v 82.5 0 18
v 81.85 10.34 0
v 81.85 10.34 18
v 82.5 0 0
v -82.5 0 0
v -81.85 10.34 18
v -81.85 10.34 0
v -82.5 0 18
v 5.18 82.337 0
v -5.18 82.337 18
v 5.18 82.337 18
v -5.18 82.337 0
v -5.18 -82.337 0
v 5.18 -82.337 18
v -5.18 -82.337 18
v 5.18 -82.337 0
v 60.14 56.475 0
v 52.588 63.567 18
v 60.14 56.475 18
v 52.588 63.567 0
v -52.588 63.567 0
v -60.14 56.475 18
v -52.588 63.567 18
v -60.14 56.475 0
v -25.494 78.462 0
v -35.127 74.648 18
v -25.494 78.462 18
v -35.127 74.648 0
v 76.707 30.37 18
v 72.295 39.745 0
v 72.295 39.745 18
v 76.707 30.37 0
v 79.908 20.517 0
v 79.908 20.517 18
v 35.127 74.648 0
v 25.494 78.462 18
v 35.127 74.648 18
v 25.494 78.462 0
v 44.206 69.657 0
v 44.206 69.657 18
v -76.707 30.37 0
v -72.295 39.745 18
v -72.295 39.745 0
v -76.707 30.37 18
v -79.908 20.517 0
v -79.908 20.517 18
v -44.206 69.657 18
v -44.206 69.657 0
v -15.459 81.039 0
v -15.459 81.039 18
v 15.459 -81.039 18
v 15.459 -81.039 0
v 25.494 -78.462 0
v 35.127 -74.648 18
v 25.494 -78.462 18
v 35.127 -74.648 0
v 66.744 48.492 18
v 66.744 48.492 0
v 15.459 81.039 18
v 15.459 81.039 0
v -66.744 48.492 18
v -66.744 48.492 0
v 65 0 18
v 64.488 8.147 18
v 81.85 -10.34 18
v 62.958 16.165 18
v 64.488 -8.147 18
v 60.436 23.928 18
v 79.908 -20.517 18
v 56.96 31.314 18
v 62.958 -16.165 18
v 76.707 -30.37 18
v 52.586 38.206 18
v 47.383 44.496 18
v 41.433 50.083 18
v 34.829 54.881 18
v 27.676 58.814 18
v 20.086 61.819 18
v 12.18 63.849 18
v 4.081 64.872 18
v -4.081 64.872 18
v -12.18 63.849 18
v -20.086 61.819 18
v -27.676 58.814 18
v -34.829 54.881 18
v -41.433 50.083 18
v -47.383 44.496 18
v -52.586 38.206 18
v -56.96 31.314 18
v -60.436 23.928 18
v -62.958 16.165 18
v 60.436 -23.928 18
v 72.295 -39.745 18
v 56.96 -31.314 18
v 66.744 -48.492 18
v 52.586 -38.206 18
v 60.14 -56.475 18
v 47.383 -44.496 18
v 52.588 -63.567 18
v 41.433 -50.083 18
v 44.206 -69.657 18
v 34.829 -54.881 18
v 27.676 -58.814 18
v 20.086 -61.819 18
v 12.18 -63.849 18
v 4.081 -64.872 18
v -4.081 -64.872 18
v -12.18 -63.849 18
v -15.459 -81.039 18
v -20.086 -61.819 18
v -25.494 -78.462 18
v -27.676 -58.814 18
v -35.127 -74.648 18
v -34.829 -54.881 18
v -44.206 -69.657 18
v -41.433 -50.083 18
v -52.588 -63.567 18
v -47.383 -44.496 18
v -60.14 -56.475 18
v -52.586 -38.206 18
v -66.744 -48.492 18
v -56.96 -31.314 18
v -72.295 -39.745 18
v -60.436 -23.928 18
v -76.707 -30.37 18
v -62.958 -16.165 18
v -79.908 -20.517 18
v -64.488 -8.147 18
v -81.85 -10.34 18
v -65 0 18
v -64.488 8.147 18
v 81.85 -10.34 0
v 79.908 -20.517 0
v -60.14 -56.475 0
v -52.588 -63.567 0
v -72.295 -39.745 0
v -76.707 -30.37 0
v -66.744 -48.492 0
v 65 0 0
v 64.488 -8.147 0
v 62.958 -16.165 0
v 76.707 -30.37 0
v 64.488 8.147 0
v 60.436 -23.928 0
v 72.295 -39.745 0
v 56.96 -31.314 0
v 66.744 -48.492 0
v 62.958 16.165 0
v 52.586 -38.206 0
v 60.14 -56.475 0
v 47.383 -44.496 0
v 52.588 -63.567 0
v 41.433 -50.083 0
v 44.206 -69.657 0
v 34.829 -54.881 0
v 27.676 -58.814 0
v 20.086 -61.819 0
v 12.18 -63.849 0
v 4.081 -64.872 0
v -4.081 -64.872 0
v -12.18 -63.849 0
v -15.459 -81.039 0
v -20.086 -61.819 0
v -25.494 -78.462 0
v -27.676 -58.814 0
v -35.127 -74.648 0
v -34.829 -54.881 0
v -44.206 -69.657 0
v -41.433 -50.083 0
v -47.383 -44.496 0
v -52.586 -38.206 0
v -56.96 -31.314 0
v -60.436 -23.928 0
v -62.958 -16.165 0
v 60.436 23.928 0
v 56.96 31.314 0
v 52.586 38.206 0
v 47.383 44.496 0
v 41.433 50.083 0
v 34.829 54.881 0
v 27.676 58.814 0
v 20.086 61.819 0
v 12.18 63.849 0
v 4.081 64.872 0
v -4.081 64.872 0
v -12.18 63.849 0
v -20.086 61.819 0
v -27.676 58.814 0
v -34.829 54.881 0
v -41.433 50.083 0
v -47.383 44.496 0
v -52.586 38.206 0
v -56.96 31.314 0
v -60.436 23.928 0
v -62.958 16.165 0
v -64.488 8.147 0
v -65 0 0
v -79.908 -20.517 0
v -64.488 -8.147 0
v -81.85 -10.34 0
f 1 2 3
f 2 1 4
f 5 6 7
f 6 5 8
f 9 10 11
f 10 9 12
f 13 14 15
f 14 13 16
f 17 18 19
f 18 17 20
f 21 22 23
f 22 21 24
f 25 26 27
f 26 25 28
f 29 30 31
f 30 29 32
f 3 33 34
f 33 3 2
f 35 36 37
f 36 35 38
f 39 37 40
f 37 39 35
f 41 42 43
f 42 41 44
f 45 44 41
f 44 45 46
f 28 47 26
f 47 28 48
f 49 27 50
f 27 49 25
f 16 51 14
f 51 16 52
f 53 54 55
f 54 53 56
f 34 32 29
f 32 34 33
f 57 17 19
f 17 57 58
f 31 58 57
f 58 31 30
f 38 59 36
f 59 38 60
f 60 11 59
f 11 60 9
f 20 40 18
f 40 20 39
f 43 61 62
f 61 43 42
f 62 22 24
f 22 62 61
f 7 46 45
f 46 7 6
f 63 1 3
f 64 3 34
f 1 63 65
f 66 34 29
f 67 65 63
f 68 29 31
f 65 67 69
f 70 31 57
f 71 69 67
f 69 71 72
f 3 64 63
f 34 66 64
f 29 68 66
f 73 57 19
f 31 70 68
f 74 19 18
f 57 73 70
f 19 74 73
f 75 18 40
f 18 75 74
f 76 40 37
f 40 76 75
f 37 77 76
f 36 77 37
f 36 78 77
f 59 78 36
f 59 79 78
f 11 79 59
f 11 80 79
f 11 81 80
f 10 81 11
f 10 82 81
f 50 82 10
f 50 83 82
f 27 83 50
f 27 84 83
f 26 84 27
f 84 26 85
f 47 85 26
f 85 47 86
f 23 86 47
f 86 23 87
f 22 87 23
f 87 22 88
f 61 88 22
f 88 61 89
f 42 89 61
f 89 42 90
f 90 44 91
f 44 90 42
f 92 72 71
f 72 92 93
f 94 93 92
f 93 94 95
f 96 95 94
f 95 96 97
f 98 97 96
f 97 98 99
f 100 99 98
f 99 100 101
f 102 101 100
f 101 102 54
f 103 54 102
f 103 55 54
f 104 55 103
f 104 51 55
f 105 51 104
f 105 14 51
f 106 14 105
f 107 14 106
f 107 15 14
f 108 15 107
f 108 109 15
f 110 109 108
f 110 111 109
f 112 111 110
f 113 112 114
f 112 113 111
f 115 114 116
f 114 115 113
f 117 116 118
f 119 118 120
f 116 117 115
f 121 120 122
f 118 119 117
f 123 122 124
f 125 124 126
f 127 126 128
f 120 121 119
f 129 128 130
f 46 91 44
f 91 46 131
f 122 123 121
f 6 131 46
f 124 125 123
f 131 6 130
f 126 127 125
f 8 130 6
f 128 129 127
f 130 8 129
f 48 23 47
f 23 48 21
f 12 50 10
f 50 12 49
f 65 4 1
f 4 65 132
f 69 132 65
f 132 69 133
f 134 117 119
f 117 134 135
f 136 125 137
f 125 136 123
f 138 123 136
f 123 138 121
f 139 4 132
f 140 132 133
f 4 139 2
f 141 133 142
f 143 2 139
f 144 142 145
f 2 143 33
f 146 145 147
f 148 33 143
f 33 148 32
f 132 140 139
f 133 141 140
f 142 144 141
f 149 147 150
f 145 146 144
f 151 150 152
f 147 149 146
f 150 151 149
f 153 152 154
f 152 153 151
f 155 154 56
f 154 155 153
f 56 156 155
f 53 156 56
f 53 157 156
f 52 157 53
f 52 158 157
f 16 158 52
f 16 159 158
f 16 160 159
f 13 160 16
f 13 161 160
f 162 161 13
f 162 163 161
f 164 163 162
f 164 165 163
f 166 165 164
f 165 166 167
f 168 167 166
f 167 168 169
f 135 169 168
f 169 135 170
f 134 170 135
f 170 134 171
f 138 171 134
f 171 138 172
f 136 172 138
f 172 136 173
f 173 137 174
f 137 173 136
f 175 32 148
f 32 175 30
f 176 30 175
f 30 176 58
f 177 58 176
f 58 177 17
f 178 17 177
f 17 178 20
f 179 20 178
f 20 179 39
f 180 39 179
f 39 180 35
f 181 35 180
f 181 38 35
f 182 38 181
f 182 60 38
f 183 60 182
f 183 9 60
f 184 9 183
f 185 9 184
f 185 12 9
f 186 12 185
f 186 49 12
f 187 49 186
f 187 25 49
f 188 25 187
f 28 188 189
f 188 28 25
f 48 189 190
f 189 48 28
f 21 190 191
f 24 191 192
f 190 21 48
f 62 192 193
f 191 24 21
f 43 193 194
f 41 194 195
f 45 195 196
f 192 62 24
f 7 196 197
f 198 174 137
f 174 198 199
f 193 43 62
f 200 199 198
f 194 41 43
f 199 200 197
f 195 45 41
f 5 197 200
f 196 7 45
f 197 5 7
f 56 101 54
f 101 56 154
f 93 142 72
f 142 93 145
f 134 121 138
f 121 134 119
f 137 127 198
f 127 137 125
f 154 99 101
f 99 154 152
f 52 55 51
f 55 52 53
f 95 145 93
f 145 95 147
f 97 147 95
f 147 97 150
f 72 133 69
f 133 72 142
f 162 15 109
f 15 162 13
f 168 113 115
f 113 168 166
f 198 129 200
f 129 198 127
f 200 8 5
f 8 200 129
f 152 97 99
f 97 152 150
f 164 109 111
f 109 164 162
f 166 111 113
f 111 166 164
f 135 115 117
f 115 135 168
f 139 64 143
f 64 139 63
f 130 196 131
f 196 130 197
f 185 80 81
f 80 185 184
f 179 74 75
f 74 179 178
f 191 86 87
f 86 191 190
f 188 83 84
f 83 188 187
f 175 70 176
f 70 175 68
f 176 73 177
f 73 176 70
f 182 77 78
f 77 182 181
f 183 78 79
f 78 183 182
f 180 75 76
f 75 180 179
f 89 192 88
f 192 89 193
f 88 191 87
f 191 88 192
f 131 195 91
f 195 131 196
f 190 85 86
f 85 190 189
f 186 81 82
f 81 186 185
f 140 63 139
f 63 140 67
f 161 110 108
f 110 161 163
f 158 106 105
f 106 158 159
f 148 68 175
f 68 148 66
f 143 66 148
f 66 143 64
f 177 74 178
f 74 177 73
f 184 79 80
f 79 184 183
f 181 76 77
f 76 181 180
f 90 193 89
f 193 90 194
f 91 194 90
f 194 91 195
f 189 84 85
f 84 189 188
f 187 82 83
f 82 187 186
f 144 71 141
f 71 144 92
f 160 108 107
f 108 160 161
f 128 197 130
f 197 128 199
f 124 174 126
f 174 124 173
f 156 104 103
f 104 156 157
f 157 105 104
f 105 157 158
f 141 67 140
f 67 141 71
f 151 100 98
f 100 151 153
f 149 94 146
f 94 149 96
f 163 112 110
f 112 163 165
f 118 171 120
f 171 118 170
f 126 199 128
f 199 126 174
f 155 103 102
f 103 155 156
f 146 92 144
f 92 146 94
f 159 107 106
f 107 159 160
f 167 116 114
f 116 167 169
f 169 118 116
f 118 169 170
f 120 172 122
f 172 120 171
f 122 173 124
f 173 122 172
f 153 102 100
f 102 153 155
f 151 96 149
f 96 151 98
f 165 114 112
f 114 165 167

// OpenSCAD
$fn = 50;


difference() {
	union() {
		cylinder(h = 18, r = 82.5000000000);
	}
	union() {
		cylinder(h = 18, r = 65.0000000000);
	}
}
